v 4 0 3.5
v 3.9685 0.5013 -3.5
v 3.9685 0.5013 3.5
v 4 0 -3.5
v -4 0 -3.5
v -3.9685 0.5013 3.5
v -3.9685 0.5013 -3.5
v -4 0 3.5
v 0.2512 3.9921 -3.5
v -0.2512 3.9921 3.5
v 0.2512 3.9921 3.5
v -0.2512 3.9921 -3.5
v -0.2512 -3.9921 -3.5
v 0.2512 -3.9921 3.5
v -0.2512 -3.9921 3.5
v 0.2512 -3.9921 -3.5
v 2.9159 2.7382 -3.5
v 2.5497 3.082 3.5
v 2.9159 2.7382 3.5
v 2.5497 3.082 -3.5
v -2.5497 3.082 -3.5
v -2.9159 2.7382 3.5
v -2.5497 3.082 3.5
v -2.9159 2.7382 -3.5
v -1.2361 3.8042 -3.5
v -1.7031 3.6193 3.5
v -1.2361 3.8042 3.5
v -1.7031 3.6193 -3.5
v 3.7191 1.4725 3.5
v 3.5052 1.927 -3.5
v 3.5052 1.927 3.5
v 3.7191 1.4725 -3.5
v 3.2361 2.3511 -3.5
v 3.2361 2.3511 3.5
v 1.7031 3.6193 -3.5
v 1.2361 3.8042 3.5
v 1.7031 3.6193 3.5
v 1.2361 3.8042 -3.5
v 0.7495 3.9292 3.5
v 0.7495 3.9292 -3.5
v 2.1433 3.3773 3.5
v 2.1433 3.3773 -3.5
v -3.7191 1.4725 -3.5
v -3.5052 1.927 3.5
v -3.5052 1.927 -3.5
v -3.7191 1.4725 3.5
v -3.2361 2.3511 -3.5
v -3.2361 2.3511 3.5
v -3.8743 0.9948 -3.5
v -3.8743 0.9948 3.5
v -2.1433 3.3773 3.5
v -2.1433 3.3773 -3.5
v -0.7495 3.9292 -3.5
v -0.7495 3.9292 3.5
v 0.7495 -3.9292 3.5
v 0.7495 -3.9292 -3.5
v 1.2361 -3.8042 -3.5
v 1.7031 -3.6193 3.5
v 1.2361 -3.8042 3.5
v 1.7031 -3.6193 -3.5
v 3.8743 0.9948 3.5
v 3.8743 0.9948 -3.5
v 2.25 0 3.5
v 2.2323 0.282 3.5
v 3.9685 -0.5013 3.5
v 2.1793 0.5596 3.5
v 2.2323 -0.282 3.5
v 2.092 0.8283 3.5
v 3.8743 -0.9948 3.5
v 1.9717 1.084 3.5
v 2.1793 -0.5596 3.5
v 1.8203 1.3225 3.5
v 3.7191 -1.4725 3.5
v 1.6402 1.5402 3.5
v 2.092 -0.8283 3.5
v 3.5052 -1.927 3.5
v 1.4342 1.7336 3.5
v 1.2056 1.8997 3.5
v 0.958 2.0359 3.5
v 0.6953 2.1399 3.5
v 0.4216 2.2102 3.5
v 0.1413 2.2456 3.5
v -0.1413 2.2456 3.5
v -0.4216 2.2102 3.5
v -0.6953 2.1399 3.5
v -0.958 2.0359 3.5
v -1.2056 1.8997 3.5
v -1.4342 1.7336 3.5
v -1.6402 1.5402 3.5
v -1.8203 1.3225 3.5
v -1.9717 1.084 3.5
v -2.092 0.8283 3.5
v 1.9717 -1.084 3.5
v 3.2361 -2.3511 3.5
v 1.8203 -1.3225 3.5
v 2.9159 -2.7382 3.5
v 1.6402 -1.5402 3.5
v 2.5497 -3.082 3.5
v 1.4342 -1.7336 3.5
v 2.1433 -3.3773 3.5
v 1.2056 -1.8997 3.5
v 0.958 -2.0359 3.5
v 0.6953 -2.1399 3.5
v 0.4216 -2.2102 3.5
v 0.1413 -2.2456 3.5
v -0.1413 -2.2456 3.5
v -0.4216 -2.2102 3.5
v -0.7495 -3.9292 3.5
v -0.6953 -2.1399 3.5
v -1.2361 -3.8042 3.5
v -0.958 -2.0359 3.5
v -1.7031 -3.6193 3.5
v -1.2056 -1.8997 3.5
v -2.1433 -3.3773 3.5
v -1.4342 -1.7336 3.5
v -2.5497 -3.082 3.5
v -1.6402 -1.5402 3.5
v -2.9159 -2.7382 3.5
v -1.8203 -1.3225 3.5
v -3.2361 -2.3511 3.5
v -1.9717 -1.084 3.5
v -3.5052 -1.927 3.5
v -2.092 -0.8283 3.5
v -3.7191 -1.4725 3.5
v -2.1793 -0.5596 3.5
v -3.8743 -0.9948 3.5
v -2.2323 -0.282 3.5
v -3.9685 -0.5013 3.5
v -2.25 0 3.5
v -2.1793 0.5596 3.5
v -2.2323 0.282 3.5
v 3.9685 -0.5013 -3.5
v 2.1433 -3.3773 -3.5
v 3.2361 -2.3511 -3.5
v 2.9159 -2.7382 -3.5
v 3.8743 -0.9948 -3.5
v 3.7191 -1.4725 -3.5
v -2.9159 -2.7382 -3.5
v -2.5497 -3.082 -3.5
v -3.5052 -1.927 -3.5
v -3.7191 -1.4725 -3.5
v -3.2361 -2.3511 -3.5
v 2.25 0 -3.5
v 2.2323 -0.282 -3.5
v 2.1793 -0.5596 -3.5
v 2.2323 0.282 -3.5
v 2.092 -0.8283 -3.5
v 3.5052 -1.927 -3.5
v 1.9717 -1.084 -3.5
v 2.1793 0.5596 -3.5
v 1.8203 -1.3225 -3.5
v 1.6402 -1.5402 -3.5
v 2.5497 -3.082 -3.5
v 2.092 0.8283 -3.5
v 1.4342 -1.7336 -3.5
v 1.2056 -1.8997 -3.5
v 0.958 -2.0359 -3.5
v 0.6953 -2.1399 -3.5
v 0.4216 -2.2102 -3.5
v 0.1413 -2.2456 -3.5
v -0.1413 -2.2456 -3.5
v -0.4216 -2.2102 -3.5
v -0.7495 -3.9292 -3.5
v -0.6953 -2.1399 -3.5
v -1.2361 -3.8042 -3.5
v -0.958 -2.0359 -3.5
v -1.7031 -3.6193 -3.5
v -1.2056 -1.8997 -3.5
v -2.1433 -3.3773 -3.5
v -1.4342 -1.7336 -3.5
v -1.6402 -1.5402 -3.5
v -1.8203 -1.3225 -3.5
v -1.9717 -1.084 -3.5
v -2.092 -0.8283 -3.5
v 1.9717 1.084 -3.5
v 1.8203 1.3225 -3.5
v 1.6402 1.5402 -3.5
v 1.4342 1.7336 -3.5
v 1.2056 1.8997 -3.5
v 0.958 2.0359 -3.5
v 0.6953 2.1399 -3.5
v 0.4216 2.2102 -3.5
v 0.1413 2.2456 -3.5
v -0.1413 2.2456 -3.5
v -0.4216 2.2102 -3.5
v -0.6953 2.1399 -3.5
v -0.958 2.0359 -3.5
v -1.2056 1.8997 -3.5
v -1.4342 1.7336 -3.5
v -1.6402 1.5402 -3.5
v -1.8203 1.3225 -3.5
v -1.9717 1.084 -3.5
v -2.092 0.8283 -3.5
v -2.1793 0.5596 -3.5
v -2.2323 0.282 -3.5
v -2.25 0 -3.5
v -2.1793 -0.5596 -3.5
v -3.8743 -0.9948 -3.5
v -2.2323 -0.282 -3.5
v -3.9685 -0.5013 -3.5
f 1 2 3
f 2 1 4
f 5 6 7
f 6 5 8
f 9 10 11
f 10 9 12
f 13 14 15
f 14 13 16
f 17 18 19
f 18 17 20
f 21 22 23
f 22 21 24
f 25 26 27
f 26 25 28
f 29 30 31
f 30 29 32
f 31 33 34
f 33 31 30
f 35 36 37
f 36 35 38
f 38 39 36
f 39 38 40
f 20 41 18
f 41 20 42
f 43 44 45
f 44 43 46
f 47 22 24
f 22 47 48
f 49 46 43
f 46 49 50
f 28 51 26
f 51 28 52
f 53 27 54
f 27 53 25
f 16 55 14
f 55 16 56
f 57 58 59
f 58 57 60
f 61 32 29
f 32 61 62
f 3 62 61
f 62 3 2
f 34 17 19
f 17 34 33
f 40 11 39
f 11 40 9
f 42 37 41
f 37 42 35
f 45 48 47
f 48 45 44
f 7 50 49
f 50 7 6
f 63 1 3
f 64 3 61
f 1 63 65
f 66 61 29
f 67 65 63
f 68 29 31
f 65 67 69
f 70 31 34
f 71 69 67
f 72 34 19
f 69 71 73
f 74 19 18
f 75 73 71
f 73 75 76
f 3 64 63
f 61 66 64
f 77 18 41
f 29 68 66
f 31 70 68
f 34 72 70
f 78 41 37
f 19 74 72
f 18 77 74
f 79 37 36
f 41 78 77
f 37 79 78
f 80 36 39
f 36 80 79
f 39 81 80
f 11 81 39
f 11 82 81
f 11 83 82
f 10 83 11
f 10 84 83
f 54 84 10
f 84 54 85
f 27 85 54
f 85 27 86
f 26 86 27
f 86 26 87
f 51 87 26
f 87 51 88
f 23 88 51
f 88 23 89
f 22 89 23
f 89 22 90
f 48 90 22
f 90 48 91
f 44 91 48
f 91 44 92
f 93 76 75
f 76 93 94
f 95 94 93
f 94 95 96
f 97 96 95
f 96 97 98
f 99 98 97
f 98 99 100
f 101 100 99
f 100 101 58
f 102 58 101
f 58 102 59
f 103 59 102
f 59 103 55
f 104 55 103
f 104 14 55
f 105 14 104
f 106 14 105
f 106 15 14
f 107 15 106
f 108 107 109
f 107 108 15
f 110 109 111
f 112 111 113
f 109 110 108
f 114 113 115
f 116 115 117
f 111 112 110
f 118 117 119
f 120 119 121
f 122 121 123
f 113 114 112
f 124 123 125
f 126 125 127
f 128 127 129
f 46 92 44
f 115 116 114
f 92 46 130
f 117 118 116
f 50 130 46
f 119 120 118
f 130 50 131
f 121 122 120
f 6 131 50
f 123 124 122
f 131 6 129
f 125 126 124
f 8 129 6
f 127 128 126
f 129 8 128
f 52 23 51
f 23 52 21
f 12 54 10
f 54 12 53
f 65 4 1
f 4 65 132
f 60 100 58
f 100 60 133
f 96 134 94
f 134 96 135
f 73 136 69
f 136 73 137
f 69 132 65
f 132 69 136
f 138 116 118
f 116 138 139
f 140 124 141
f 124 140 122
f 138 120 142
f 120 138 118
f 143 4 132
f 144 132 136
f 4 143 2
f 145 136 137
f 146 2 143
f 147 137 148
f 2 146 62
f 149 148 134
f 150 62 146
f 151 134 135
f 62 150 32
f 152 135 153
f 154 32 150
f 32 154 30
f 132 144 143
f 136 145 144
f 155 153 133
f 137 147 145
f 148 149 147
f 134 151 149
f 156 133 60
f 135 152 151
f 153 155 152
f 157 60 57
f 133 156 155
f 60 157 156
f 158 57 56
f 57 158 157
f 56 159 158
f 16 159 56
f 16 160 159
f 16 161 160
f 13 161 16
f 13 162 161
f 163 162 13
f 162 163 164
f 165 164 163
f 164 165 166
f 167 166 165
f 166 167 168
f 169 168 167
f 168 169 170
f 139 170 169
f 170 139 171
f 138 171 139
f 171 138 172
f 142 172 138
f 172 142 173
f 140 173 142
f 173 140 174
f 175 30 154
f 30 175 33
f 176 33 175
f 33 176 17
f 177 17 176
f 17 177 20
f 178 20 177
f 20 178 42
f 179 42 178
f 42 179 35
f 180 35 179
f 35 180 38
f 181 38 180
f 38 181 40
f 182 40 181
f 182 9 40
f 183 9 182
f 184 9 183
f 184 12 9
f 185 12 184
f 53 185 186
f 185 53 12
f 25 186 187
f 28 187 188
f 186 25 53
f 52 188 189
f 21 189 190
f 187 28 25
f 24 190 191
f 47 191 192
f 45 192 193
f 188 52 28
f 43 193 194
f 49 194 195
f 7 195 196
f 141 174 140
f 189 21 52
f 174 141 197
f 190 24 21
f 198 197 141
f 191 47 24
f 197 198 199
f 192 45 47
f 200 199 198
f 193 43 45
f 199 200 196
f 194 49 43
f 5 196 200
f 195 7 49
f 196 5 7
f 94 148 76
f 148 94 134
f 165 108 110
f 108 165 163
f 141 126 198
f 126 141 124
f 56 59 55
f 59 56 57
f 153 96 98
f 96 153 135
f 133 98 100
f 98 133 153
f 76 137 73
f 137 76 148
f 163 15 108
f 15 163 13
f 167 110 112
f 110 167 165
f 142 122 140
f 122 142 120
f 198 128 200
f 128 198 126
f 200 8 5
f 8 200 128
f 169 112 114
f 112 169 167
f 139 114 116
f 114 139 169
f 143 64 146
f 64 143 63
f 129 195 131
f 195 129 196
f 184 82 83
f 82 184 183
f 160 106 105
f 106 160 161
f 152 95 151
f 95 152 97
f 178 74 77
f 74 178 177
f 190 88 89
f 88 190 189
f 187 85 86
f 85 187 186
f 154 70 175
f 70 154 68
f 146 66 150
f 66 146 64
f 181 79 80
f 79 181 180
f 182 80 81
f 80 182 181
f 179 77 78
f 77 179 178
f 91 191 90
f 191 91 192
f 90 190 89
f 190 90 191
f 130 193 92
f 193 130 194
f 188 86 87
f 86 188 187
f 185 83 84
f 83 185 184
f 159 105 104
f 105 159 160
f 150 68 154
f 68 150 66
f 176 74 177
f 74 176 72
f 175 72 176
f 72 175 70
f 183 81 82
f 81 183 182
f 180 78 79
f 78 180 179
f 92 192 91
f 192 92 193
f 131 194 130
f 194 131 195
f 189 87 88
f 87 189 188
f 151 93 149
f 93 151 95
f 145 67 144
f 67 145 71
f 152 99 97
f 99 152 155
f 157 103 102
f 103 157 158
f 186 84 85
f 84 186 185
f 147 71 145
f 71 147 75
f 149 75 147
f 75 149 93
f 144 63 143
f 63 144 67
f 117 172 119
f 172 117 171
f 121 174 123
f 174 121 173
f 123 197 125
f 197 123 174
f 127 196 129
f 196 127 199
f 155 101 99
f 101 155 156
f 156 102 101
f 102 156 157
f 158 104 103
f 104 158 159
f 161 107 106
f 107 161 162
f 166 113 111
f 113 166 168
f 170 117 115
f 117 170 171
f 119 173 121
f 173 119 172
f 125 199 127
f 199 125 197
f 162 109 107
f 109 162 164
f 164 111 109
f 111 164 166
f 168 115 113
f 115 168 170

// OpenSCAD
$fn = 50;


difference() {
	union() {
		translate(v = [0, 0, -3.5000000000]) {
			cylinder(h = 7, r = 4.0000000000);
		}
	}
	union() {
		translate(v = [0, 0, -100.0000000000]) {
			cylinder(h = 200, r = 2.2500000000);
		}
	}
}
